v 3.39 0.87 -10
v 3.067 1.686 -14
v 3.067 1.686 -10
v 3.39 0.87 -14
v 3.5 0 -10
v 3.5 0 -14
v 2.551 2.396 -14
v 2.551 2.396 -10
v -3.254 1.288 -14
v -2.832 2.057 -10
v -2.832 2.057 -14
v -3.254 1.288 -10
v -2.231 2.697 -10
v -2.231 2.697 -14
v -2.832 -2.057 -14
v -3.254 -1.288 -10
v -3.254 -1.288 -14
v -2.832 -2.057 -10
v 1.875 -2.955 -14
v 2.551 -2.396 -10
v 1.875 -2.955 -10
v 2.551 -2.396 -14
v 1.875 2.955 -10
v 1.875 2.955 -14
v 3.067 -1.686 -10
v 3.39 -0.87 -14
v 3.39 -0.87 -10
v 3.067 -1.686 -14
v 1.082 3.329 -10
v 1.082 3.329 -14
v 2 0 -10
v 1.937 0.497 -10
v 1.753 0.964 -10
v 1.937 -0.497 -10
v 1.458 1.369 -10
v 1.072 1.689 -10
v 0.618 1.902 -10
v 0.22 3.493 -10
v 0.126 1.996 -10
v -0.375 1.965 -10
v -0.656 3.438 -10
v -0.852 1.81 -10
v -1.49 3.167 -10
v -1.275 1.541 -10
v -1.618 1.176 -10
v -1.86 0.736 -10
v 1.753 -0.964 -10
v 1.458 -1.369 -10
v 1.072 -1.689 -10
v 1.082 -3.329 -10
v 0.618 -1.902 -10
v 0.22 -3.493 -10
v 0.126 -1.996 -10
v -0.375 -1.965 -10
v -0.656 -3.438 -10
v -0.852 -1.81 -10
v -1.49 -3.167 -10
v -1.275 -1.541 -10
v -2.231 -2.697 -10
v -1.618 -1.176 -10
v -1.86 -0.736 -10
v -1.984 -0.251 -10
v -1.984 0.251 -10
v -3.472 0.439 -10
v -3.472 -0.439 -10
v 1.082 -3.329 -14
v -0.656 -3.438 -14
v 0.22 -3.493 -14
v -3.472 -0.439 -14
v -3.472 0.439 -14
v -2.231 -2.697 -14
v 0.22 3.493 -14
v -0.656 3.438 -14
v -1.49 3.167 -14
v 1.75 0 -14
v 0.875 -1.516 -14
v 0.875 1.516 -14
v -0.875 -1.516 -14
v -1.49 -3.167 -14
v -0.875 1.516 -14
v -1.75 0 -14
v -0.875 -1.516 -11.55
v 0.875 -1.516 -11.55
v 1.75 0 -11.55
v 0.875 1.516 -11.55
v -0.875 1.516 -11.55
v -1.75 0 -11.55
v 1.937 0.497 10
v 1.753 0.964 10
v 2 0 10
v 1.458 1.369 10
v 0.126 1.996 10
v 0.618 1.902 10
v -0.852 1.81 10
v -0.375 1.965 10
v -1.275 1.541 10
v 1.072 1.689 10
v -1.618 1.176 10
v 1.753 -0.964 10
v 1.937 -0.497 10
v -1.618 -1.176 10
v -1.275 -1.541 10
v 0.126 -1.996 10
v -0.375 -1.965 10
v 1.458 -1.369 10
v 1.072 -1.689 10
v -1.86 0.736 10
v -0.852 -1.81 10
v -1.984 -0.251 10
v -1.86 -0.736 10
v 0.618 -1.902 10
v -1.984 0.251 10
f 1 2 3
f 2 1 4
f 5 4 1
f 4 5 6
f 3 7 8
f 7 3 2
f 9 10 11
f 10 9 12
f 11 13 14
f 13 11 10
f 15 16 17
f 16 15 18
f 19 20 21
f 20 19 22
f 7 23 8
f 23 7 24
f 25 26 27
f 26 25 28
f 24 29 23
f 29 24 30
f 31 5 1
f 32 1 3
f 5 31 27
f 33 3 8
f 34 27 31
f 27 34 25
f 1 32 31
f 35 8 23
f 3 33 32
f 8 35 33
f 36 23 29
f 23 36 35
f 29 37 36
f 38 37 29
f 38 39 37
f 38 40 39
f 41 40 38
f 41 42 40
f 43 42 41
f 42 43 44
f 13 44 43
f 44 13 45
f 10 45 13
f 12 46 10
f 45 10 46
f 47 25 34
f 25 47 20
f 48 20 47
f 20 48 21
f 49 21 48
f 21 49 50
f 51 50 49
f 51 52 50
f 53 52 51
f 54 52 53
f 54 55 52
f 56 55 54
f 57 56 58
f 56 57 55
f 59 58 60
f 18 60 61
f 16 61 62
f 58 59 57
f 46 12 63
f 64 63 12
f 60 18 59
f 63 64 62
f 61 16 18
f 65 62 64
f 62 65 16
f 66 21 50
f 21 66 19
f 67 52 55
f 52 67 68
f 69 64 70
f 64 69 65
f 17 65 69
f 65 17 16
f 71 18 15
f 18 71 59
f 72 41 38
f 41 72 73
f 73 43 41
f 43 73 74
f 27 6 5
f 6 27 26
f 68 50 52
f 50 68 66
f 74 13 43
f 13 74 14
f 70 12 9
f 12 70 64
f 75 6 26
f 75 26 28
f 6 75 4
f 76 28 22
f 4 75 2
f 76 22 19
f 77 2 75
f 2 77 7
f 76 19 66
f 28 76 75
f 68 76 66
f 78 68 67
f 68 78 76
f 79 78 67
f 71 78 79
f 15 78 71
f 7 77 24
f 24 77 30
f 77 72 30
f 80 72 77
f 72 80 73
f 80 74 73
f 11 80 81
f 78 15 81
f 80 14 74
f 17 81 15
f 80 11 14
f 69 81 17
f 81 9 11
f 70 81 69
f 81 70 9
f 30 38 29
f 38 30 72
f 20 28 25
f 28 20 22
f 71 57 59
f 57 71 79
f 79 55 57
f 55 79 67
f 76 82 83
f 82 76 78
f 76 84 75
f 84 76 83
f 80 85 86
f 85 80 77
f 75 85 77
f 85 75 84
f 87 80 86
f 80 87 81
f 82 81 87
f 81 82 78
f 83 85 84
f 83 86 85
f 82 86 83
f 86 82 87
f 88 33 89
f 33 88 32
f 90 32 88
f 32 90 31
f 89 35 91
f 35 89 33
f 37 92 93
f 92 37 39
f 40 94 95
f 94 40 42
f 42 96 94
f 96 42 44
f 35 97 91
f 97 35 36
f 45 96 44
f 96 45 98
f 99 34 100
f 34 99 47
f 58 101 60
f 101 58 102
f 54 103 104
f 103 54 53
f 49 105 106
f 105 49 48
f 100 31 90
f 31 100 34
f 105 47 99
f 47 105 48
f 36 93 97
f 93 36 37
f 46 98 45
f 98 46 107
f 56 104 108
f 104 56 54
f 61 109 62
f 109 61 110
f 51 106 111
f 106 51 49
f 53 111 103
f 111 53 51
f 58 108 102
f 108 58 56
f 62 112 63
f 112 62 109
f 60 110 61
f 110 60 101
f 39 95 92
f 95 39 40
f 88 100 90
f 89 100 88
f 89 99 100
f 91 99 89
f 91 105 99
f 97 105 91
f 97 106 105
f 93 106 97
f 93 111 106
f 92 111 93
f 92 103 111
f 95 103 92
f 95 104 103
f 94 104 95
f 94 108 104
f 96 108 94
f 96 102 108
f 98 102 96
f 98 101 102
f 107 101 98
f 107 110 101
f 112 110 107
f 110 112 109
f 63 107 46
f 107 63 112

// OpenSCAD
// file: lib/screw_nuts.scad
$fn=25;

module screw_m3(h=20){
    cylinder(d=3, h=h, center=true);
    translate([0, 0, -h/2-1.5])
        difference(){
            cylinder(d=5.5, h=3, center=true);
            translate([0, 0, -0.8])
                cylinder(d=2.8, h=1.8, $fn=6, center=true);
        }
}

module screw_m4(h=20){
    cylinder(d=4, h=h, center=true);
    translate([0, 0, -h/2-2])
        difference(){
            cylinder(d=7, h=4, center=true);
            translate([0, 0, -0.8])
                cylinder(d=3.5, h=2.5, $fn=6, center=true);
        }
}

module nut_m3(){
    difference(){
        cylinder(d=6, h=2.4, $fn=6);
        translate([0, 0, -0.05])
            cylinder(d=3, h=2.5);
    }
}

module nut_m4(){
    difference(){
        cylinder(d=7.6, h=3.2, $fn=6);
        translate([0, 0, -0.05])
            cylinder(d=4, h=3.3);
    }
}

module washer_m3(h){
    difference(){
        cylinder(d=8, h=h, center=true);
        cylinder(d=3.5, h=h+0.1, center=true);
    }
}
// main file
// NAME: Screw M4x20
// COLOR: 80
// CATEGORY: Support

include <lib/screw_nuts.scad>

screw_m4(20);
